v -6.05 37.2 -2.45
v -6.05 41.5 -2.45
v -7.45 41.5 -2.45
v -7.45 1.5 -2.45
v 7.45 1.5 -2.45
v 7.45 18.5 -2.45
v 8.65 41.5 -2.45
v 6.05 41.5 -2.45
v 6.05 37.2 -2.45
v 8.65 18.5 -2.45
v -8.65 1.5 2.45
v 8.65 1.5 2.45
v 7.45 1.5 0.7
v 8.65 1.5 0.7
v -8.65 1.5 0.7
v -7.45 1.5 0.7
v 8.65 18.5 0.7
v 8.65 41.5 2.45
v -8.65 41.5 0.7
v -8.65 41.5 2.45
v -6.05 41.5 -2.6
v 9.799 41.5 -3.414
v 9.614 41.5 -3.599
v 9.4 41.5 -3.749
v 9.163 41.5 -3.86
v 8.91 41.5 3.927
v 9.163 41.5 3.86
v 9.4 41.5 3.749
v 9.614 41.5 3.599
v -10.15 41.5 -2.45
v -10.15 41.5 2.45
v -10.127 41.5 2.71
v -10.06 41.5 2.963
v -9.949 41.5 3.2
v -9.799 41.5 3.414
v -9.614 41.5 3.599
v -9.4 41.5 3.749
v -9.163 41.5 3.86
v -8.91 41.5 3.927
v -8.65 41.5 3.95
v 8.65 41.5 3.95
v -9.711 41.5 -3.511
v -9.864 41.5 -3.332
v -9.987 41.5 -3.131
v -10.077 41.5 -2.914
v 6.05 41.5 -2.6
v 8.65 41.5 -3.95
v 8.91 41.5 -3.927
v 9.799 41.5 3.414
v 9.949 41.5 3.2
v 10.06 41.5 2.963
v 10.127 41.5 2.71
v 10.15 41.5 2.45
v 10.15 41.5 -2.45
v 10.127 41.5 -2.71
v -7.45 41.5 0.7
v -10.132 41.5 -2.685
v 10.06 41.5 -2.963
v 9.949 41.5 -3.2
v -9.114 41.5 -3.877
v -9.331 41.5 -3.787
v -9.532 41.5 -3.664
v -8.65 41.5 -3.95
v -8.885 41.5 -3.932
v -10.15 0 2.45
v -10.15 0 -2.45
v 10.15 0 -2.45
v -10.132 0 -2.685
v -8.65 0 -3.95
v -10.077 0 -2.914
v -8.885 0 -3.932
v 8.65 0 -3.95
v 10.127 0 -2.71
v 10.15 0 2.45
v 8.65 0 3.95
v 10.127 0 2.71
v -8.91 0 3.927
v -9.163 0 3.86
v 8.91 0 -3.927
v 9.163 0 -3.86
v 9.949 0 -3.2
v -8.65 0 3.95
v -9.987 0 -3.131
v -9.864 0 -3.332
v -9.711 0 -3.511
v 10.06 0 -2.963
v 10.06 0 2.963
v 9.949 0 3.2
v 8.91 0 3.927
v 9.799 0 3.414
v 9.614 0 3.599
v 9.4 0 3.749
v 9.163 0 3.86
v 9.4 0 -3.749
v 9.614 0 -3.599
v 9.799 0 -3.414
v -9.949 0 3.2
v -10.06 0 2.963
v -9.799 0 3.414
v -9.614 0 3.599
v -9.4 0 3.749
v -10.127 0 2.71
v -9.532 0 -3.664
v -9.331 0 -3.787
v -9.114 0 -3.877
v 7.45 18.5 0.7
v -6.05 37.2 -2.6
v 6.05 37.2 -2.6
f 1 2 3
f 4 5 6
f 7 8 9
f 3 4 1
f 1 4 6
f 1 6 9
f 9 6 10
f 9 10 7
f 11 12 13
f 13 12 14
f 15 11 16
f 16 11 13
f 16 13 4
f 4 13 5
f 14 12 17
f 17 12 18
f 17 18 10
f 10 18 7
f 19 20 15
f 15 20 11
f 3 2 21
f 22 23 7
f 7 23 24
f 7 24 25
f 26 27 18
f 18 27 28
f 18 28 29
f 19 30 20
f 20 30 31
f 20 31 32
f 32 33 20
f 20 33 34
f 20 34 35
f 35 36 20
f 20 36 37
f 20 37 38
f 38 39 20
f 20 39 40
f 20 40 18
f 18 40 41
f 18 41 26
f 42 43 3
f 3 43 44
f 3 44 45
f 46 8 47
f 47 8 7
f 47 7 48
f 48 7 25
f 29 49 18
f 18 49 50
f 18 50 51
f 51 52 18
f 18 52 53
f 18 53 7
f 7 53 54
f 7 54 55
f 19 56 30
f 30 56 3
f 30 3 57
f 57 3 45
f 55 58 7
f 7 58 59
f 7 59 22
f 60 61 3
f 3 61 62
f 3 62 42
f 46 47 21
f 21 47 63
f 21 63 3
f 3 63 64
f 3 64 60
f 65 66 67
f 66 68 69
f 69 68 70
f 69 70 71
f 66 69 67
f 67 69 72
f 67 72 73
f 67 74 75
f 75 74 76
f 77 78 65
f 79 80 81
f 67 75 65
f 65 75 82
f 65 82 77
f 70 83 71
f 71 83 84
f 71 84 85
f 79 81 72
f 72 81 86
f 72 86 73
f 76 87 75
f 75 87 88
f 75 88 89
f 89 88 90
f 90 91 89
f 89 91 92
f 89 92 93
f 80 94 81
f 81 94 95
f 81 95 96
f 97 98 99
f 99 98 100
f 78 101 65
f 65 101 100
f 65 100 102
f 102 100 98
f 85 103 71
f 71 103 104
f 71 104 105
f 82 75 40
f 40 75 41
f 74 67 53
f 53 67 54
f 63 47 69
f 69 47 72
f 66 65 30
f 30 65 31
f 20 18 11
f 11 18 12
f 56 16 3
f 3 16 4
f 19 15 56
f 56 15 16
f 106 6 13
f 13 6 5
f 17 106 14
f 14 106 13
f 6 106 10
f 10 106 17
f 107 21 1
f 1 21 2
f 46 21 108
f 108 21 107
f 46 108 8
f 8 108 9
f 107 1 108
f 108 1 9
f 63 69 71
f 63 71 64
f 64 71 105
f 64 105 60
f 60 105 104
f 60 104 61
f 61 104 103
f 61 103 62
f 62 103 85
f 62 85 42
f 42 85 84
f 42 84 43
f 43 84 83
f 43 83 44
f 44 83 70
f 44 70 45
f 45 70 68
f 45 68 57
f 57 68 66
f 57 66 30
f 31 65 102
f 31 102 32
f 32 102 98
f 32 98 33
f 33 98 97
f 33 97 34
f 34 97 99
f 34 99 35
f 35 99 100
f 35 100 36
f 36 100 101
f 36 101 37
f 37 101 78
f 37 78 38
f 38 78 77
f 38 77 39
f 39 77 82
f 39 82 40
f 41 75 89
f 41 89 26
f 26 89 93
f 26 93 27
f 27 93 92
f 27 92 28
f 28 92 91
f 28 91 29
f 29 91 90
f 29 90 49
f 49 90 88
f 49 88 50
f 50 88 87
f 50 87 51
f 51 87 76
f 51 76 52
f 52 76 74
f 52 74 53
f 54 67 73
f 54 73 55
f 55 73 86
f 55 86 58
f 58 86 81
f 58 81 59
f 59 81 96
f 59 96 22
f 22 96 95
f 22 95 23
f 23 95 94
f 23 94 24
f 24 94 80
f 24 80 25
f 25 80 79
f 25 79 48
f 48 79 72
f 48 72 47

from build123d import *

# Parameters (mm, degrees)
SKETCH1_W           = 20.3
SKETCH1_H           = 7.9
SKETCH1_W_2         = 17.3
SKETCH1_H_2         = 4.9
BOSS_EXTRUDE1_DEPTH = 41.5
SKETCH2_W           = 20.3
SKETCH2_H           = 7.9
BOSS_EXTRUDE2_DEPTH = 1.5
SKETCH3_W           = 1.2
SKETCH3_H           = 3.15
BOSS_EXTRUDE3_DEPTH = 40
SKETCH4_W           = 1.2
SKETCH4_H           = 3.15
BOSS_EXTRUDE4_DEPTH = 17
SKETCH5_W           = 12.1
SKETCH5_H           = 0.3
CUT_EXTRUDE1_DEPTH  = 4.3
FILLET1_R           = 1.5


with BuildPart() as part:
    # Sketch1 → Boss-Extrude1 (new body)
    with BuildSketch(Plane(origin=(0, 0, 0), x_dir=(1, 0, 0), z_dir=(0, 1, 0))):
        Rectangle(SKETCH1_W, SKETCH1_H)
        Rectangle(SKETCH1_W_2, SKETCH1_H_2, mode=Mode.SUBTRACT)
    extrude(amount=BOSS_EXTRUDE1_DEPTH)

    # Sketch2 → Boss-Extrude2 (add)
    with BuildSketch(Plane.XZ):
        Rectangle(SKETCH2_W, SKETCH2_H)
    extrude(amount=-BOSS_EXTRUDE2_DEPTH)

    # Sketch3 → Boss-Extrude3 (add)
    with BuildSketch(Plane(origin=(0, 1.5, 0), x_dir=(1, 0, 0), z_dir=(0, 1, 0))):
        with Locations((-8.05, 0.875)):
            Rectangle(SKETCH3_W, SKETCH3_H)
    extrude(amount=BOSS_EXTRUDE3_DEPTH)

    # Sketch4 → Boss-Extrude4 (add)
    with BuildSketch(Plane(origin=(0, 1.5, 0), x_dir=(1, 0, 0), z_dir=(0, 1, 0))):
        with Locations((8.05, 0.875)):
            Rectangle(SKETCH4_W, SKETCH4_H)
    extrude(amount=BOSS_EXTRUDE4_DEPTH)

    # Sketch5 → Cut-Extrude1 (cut)
    with BuildSketch(Plane(origin=(0, 41.5, 0), x_dir=(1, 0, 0), z_dir=(0, 1, 0))):
        with Locations((0, 2.45)):
            Rectangle(SKETCH5_W, SKETCH5_H)
    extrude(amount=-CUT_EXTRUDE1_DEPTH, mode=Mode.SUBTRACT)

    # Fillet1
    fillet1_edges = [part.edges().sort_by_distance(p)[0] for p in [
        (-10.15, 20.75, 3.95),
        (-10.15, 20.75, -3.95),
        (10.15, 20.75, -3.95),
        (10.15, 20.75, 3.95),
    ]]
    fillet(fillet1_edges, radius=FILLET1_R)


solid = part.part
